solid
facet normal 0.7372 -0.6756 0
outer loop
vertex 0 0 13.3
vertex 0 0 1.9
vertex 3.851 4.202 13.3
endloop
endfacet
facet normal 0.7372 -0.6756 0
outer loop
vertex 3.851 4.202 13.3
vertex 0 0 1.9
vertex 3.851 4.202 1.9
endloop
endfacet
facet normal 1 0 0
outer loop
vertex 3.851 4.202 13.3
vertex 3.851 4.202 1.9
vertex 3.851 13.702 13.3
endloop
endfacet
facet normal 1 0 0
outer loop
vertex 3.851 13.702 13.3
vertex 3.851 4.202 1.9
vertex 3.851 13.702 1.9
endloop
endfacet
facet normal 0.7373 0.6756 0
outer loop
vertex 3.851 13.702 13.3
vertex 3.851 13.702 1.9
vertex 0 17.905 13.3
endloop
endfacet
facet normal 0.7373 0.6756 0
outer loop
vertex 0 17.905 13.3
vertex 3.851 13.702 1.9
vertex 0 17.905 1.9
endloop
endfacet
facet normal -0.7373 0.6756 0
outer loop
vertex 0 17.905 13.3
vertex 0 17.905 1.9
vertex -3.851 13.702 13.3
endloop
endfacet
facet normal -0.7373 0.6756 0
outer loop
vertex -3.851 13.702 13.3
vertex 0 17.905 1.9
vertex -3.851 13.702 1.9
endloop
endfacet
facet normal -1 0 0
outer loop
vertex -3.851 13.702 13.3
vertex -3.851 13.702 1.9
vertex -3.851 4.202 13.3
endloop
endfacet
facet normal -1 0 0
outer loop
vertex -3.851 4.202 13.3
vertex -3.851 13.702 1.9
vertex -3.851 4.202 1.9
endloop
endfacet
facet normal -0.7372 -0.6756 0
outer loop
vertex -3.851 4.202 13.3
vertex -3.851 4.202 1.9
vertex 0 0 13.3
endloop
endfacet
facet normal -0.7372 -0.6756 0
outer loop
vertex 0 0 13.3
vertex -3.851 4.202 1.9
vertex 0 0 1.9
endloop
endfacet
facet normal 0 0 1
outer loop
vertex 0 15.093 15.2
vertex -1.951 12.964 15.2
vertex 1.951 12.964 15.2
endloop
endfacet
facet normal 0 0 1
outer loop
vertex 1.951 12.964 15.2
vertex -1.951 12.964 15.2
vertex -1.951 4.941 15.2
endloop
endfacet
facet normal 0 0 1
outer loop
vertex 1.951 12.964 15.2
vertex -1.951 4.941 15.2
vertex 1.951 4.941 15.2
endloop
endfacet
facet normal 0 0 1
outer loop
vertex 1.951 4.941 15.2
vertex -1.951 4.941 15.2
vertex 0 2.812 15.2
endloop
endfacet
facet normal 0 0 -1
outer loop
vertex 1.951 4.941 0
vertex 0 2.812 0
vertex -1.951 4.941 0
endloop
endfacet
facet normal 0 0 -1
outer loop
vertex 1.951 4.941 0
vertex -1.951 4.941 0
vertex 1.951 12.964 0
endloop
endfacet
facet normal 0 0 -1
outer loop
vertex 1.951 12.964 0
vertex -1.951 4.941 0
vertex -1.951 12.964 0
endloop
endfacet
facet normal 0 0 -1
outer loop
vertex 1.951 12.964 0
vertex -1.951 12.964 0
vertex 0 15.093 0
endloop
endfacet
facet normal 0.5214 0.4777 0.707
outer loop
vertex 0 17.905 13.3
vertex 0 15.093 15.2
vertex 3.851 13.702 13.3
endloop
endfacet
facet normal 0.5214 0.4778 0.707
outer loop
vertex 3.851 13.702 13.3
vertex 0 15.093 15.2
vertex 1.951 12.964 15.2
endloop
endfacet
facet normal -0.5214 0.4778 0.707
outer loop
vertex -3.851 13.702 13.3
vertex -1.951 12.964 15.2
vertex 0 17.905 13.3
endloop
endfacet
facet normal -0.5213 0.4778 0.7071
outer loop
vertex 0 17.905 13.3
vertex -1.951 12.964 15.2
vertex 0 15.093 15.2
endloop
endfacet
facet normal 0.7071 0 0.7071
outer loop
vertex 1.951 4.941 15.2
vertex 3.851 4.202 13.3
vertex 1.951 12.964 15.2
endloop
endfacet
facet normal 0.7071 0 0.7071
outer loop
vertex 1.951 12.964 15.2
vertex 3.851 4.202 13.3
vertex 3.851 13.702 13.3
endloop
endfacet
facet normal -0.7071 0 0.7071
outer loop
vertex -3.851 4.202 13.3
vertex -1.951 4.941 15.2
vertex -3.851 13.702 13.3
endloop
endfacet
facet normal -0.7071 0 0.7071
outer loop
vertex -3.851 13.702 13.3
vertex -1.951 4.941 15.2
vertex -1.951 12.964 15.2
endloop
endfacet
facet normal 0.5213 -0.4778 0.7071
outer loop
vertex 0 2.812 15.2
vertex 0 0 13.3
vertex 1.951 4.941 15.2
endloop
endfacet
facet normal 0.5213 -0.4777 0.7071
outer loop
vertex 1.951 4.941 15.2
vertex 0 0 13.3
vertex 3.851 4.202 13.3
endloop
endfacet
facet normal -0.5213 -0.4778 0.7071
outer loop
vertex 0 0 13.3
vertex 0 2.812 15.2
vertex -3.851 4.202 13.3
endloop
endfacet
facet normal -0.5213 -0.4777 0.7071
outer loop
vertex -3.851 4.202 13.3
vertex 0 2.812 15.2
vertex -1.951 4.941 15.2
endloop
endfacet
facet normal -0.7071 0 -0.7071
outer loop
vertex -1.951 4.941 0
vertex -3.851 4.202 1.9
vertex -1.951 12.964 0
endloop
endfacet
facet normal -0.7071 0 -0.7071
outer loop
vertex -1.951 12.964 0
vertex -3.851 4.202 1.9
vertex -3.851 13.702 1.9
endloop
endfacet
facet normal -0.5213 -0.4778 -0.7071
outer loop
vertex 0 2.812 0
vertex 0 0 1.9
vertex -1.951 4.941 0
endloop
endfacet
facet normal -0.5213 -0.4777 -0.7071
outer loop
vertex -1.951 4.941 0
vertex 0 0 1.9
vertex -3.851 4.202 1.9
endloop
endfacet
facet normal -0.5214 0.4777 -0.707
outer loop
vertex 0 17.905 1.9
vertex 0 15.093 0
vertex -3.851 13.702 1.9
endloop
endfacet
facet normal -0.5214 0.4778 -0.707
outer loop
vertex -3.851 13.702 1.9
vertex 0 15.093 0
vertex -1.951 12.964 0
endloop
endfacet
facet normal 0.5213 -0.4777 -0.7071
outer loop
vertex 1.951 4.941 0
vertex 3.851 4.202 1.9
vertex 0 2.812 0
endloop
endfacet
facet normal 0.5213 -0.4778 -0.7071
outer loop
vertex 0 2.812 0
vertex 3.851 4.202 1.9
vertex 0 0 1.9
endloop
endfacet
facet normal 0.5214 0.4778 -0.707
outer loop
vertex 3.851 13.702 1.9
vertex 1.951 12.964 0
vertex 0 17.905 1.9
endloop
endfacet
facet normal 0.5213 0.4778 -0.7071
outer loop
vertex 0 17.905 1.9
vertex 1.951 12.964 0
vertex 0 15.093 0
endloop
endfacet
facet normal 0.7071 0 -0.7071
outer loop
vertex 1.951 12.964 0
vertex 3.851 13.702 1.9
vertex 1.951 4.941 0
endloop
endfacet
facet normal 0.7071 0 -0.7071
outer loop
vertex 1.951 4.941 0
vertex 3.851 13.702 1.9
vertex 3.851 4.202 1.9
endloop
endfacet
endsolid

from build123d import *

# Parameters (mm, degrees)
BOSS_EXTRUDE1_DEPTH = 16
CHAMFER1_SIZE       = 2
SCALE2_SCALE        = 0.95


with BuildPart() as part:
    # Sketch1 → Boss-Extrude1 (new body)
    with BuildSketch(Plane.XY):
        Polygon((0, 18.847328042), (-4.053541246, 14.423664021), (-4.053541246, 4.423664021), (0, 0), (4.053541246, 4.423664021), (4.053541246, 14.423664021), align=None)
    extrude(amount=BOSS_EXTRUDE1_DEPTH)

    # Chamfer1
    chamfer1_edges = [part.edges().sort_by_distance(p)[0] for p in [
        (2.026770623, 16.635496031, 16),
        (-2.026770623, 16.635496031, 16),
        (-4.053541246, 9.423664021, 16),
        (-2.026770623, 2.21183201, 16),
        (2.026770623, 2.21183201, 16),
        (-2.026770623, 2.21183201, 0),
        (-4.053541246, 9.423664021, 0),
        (-2.026770623, 16.635496031, 0),
        (2.026770623, 16.635496031, 0),
        (4.053541246, 9.423664021, 0),
        (2.026770623, 2.21183201, 0),
        (4.053541246, 9.423664021, 16),
    ]]
    chamfer(chamfer1_edges, length=CHAMFER1_SIZE)


with BuildPart() as part_1:
    # Scale2: scaled about (0, 0, 0)
    add(part.part.scale(SCALE2_SCALE))


solid = part_1.part
